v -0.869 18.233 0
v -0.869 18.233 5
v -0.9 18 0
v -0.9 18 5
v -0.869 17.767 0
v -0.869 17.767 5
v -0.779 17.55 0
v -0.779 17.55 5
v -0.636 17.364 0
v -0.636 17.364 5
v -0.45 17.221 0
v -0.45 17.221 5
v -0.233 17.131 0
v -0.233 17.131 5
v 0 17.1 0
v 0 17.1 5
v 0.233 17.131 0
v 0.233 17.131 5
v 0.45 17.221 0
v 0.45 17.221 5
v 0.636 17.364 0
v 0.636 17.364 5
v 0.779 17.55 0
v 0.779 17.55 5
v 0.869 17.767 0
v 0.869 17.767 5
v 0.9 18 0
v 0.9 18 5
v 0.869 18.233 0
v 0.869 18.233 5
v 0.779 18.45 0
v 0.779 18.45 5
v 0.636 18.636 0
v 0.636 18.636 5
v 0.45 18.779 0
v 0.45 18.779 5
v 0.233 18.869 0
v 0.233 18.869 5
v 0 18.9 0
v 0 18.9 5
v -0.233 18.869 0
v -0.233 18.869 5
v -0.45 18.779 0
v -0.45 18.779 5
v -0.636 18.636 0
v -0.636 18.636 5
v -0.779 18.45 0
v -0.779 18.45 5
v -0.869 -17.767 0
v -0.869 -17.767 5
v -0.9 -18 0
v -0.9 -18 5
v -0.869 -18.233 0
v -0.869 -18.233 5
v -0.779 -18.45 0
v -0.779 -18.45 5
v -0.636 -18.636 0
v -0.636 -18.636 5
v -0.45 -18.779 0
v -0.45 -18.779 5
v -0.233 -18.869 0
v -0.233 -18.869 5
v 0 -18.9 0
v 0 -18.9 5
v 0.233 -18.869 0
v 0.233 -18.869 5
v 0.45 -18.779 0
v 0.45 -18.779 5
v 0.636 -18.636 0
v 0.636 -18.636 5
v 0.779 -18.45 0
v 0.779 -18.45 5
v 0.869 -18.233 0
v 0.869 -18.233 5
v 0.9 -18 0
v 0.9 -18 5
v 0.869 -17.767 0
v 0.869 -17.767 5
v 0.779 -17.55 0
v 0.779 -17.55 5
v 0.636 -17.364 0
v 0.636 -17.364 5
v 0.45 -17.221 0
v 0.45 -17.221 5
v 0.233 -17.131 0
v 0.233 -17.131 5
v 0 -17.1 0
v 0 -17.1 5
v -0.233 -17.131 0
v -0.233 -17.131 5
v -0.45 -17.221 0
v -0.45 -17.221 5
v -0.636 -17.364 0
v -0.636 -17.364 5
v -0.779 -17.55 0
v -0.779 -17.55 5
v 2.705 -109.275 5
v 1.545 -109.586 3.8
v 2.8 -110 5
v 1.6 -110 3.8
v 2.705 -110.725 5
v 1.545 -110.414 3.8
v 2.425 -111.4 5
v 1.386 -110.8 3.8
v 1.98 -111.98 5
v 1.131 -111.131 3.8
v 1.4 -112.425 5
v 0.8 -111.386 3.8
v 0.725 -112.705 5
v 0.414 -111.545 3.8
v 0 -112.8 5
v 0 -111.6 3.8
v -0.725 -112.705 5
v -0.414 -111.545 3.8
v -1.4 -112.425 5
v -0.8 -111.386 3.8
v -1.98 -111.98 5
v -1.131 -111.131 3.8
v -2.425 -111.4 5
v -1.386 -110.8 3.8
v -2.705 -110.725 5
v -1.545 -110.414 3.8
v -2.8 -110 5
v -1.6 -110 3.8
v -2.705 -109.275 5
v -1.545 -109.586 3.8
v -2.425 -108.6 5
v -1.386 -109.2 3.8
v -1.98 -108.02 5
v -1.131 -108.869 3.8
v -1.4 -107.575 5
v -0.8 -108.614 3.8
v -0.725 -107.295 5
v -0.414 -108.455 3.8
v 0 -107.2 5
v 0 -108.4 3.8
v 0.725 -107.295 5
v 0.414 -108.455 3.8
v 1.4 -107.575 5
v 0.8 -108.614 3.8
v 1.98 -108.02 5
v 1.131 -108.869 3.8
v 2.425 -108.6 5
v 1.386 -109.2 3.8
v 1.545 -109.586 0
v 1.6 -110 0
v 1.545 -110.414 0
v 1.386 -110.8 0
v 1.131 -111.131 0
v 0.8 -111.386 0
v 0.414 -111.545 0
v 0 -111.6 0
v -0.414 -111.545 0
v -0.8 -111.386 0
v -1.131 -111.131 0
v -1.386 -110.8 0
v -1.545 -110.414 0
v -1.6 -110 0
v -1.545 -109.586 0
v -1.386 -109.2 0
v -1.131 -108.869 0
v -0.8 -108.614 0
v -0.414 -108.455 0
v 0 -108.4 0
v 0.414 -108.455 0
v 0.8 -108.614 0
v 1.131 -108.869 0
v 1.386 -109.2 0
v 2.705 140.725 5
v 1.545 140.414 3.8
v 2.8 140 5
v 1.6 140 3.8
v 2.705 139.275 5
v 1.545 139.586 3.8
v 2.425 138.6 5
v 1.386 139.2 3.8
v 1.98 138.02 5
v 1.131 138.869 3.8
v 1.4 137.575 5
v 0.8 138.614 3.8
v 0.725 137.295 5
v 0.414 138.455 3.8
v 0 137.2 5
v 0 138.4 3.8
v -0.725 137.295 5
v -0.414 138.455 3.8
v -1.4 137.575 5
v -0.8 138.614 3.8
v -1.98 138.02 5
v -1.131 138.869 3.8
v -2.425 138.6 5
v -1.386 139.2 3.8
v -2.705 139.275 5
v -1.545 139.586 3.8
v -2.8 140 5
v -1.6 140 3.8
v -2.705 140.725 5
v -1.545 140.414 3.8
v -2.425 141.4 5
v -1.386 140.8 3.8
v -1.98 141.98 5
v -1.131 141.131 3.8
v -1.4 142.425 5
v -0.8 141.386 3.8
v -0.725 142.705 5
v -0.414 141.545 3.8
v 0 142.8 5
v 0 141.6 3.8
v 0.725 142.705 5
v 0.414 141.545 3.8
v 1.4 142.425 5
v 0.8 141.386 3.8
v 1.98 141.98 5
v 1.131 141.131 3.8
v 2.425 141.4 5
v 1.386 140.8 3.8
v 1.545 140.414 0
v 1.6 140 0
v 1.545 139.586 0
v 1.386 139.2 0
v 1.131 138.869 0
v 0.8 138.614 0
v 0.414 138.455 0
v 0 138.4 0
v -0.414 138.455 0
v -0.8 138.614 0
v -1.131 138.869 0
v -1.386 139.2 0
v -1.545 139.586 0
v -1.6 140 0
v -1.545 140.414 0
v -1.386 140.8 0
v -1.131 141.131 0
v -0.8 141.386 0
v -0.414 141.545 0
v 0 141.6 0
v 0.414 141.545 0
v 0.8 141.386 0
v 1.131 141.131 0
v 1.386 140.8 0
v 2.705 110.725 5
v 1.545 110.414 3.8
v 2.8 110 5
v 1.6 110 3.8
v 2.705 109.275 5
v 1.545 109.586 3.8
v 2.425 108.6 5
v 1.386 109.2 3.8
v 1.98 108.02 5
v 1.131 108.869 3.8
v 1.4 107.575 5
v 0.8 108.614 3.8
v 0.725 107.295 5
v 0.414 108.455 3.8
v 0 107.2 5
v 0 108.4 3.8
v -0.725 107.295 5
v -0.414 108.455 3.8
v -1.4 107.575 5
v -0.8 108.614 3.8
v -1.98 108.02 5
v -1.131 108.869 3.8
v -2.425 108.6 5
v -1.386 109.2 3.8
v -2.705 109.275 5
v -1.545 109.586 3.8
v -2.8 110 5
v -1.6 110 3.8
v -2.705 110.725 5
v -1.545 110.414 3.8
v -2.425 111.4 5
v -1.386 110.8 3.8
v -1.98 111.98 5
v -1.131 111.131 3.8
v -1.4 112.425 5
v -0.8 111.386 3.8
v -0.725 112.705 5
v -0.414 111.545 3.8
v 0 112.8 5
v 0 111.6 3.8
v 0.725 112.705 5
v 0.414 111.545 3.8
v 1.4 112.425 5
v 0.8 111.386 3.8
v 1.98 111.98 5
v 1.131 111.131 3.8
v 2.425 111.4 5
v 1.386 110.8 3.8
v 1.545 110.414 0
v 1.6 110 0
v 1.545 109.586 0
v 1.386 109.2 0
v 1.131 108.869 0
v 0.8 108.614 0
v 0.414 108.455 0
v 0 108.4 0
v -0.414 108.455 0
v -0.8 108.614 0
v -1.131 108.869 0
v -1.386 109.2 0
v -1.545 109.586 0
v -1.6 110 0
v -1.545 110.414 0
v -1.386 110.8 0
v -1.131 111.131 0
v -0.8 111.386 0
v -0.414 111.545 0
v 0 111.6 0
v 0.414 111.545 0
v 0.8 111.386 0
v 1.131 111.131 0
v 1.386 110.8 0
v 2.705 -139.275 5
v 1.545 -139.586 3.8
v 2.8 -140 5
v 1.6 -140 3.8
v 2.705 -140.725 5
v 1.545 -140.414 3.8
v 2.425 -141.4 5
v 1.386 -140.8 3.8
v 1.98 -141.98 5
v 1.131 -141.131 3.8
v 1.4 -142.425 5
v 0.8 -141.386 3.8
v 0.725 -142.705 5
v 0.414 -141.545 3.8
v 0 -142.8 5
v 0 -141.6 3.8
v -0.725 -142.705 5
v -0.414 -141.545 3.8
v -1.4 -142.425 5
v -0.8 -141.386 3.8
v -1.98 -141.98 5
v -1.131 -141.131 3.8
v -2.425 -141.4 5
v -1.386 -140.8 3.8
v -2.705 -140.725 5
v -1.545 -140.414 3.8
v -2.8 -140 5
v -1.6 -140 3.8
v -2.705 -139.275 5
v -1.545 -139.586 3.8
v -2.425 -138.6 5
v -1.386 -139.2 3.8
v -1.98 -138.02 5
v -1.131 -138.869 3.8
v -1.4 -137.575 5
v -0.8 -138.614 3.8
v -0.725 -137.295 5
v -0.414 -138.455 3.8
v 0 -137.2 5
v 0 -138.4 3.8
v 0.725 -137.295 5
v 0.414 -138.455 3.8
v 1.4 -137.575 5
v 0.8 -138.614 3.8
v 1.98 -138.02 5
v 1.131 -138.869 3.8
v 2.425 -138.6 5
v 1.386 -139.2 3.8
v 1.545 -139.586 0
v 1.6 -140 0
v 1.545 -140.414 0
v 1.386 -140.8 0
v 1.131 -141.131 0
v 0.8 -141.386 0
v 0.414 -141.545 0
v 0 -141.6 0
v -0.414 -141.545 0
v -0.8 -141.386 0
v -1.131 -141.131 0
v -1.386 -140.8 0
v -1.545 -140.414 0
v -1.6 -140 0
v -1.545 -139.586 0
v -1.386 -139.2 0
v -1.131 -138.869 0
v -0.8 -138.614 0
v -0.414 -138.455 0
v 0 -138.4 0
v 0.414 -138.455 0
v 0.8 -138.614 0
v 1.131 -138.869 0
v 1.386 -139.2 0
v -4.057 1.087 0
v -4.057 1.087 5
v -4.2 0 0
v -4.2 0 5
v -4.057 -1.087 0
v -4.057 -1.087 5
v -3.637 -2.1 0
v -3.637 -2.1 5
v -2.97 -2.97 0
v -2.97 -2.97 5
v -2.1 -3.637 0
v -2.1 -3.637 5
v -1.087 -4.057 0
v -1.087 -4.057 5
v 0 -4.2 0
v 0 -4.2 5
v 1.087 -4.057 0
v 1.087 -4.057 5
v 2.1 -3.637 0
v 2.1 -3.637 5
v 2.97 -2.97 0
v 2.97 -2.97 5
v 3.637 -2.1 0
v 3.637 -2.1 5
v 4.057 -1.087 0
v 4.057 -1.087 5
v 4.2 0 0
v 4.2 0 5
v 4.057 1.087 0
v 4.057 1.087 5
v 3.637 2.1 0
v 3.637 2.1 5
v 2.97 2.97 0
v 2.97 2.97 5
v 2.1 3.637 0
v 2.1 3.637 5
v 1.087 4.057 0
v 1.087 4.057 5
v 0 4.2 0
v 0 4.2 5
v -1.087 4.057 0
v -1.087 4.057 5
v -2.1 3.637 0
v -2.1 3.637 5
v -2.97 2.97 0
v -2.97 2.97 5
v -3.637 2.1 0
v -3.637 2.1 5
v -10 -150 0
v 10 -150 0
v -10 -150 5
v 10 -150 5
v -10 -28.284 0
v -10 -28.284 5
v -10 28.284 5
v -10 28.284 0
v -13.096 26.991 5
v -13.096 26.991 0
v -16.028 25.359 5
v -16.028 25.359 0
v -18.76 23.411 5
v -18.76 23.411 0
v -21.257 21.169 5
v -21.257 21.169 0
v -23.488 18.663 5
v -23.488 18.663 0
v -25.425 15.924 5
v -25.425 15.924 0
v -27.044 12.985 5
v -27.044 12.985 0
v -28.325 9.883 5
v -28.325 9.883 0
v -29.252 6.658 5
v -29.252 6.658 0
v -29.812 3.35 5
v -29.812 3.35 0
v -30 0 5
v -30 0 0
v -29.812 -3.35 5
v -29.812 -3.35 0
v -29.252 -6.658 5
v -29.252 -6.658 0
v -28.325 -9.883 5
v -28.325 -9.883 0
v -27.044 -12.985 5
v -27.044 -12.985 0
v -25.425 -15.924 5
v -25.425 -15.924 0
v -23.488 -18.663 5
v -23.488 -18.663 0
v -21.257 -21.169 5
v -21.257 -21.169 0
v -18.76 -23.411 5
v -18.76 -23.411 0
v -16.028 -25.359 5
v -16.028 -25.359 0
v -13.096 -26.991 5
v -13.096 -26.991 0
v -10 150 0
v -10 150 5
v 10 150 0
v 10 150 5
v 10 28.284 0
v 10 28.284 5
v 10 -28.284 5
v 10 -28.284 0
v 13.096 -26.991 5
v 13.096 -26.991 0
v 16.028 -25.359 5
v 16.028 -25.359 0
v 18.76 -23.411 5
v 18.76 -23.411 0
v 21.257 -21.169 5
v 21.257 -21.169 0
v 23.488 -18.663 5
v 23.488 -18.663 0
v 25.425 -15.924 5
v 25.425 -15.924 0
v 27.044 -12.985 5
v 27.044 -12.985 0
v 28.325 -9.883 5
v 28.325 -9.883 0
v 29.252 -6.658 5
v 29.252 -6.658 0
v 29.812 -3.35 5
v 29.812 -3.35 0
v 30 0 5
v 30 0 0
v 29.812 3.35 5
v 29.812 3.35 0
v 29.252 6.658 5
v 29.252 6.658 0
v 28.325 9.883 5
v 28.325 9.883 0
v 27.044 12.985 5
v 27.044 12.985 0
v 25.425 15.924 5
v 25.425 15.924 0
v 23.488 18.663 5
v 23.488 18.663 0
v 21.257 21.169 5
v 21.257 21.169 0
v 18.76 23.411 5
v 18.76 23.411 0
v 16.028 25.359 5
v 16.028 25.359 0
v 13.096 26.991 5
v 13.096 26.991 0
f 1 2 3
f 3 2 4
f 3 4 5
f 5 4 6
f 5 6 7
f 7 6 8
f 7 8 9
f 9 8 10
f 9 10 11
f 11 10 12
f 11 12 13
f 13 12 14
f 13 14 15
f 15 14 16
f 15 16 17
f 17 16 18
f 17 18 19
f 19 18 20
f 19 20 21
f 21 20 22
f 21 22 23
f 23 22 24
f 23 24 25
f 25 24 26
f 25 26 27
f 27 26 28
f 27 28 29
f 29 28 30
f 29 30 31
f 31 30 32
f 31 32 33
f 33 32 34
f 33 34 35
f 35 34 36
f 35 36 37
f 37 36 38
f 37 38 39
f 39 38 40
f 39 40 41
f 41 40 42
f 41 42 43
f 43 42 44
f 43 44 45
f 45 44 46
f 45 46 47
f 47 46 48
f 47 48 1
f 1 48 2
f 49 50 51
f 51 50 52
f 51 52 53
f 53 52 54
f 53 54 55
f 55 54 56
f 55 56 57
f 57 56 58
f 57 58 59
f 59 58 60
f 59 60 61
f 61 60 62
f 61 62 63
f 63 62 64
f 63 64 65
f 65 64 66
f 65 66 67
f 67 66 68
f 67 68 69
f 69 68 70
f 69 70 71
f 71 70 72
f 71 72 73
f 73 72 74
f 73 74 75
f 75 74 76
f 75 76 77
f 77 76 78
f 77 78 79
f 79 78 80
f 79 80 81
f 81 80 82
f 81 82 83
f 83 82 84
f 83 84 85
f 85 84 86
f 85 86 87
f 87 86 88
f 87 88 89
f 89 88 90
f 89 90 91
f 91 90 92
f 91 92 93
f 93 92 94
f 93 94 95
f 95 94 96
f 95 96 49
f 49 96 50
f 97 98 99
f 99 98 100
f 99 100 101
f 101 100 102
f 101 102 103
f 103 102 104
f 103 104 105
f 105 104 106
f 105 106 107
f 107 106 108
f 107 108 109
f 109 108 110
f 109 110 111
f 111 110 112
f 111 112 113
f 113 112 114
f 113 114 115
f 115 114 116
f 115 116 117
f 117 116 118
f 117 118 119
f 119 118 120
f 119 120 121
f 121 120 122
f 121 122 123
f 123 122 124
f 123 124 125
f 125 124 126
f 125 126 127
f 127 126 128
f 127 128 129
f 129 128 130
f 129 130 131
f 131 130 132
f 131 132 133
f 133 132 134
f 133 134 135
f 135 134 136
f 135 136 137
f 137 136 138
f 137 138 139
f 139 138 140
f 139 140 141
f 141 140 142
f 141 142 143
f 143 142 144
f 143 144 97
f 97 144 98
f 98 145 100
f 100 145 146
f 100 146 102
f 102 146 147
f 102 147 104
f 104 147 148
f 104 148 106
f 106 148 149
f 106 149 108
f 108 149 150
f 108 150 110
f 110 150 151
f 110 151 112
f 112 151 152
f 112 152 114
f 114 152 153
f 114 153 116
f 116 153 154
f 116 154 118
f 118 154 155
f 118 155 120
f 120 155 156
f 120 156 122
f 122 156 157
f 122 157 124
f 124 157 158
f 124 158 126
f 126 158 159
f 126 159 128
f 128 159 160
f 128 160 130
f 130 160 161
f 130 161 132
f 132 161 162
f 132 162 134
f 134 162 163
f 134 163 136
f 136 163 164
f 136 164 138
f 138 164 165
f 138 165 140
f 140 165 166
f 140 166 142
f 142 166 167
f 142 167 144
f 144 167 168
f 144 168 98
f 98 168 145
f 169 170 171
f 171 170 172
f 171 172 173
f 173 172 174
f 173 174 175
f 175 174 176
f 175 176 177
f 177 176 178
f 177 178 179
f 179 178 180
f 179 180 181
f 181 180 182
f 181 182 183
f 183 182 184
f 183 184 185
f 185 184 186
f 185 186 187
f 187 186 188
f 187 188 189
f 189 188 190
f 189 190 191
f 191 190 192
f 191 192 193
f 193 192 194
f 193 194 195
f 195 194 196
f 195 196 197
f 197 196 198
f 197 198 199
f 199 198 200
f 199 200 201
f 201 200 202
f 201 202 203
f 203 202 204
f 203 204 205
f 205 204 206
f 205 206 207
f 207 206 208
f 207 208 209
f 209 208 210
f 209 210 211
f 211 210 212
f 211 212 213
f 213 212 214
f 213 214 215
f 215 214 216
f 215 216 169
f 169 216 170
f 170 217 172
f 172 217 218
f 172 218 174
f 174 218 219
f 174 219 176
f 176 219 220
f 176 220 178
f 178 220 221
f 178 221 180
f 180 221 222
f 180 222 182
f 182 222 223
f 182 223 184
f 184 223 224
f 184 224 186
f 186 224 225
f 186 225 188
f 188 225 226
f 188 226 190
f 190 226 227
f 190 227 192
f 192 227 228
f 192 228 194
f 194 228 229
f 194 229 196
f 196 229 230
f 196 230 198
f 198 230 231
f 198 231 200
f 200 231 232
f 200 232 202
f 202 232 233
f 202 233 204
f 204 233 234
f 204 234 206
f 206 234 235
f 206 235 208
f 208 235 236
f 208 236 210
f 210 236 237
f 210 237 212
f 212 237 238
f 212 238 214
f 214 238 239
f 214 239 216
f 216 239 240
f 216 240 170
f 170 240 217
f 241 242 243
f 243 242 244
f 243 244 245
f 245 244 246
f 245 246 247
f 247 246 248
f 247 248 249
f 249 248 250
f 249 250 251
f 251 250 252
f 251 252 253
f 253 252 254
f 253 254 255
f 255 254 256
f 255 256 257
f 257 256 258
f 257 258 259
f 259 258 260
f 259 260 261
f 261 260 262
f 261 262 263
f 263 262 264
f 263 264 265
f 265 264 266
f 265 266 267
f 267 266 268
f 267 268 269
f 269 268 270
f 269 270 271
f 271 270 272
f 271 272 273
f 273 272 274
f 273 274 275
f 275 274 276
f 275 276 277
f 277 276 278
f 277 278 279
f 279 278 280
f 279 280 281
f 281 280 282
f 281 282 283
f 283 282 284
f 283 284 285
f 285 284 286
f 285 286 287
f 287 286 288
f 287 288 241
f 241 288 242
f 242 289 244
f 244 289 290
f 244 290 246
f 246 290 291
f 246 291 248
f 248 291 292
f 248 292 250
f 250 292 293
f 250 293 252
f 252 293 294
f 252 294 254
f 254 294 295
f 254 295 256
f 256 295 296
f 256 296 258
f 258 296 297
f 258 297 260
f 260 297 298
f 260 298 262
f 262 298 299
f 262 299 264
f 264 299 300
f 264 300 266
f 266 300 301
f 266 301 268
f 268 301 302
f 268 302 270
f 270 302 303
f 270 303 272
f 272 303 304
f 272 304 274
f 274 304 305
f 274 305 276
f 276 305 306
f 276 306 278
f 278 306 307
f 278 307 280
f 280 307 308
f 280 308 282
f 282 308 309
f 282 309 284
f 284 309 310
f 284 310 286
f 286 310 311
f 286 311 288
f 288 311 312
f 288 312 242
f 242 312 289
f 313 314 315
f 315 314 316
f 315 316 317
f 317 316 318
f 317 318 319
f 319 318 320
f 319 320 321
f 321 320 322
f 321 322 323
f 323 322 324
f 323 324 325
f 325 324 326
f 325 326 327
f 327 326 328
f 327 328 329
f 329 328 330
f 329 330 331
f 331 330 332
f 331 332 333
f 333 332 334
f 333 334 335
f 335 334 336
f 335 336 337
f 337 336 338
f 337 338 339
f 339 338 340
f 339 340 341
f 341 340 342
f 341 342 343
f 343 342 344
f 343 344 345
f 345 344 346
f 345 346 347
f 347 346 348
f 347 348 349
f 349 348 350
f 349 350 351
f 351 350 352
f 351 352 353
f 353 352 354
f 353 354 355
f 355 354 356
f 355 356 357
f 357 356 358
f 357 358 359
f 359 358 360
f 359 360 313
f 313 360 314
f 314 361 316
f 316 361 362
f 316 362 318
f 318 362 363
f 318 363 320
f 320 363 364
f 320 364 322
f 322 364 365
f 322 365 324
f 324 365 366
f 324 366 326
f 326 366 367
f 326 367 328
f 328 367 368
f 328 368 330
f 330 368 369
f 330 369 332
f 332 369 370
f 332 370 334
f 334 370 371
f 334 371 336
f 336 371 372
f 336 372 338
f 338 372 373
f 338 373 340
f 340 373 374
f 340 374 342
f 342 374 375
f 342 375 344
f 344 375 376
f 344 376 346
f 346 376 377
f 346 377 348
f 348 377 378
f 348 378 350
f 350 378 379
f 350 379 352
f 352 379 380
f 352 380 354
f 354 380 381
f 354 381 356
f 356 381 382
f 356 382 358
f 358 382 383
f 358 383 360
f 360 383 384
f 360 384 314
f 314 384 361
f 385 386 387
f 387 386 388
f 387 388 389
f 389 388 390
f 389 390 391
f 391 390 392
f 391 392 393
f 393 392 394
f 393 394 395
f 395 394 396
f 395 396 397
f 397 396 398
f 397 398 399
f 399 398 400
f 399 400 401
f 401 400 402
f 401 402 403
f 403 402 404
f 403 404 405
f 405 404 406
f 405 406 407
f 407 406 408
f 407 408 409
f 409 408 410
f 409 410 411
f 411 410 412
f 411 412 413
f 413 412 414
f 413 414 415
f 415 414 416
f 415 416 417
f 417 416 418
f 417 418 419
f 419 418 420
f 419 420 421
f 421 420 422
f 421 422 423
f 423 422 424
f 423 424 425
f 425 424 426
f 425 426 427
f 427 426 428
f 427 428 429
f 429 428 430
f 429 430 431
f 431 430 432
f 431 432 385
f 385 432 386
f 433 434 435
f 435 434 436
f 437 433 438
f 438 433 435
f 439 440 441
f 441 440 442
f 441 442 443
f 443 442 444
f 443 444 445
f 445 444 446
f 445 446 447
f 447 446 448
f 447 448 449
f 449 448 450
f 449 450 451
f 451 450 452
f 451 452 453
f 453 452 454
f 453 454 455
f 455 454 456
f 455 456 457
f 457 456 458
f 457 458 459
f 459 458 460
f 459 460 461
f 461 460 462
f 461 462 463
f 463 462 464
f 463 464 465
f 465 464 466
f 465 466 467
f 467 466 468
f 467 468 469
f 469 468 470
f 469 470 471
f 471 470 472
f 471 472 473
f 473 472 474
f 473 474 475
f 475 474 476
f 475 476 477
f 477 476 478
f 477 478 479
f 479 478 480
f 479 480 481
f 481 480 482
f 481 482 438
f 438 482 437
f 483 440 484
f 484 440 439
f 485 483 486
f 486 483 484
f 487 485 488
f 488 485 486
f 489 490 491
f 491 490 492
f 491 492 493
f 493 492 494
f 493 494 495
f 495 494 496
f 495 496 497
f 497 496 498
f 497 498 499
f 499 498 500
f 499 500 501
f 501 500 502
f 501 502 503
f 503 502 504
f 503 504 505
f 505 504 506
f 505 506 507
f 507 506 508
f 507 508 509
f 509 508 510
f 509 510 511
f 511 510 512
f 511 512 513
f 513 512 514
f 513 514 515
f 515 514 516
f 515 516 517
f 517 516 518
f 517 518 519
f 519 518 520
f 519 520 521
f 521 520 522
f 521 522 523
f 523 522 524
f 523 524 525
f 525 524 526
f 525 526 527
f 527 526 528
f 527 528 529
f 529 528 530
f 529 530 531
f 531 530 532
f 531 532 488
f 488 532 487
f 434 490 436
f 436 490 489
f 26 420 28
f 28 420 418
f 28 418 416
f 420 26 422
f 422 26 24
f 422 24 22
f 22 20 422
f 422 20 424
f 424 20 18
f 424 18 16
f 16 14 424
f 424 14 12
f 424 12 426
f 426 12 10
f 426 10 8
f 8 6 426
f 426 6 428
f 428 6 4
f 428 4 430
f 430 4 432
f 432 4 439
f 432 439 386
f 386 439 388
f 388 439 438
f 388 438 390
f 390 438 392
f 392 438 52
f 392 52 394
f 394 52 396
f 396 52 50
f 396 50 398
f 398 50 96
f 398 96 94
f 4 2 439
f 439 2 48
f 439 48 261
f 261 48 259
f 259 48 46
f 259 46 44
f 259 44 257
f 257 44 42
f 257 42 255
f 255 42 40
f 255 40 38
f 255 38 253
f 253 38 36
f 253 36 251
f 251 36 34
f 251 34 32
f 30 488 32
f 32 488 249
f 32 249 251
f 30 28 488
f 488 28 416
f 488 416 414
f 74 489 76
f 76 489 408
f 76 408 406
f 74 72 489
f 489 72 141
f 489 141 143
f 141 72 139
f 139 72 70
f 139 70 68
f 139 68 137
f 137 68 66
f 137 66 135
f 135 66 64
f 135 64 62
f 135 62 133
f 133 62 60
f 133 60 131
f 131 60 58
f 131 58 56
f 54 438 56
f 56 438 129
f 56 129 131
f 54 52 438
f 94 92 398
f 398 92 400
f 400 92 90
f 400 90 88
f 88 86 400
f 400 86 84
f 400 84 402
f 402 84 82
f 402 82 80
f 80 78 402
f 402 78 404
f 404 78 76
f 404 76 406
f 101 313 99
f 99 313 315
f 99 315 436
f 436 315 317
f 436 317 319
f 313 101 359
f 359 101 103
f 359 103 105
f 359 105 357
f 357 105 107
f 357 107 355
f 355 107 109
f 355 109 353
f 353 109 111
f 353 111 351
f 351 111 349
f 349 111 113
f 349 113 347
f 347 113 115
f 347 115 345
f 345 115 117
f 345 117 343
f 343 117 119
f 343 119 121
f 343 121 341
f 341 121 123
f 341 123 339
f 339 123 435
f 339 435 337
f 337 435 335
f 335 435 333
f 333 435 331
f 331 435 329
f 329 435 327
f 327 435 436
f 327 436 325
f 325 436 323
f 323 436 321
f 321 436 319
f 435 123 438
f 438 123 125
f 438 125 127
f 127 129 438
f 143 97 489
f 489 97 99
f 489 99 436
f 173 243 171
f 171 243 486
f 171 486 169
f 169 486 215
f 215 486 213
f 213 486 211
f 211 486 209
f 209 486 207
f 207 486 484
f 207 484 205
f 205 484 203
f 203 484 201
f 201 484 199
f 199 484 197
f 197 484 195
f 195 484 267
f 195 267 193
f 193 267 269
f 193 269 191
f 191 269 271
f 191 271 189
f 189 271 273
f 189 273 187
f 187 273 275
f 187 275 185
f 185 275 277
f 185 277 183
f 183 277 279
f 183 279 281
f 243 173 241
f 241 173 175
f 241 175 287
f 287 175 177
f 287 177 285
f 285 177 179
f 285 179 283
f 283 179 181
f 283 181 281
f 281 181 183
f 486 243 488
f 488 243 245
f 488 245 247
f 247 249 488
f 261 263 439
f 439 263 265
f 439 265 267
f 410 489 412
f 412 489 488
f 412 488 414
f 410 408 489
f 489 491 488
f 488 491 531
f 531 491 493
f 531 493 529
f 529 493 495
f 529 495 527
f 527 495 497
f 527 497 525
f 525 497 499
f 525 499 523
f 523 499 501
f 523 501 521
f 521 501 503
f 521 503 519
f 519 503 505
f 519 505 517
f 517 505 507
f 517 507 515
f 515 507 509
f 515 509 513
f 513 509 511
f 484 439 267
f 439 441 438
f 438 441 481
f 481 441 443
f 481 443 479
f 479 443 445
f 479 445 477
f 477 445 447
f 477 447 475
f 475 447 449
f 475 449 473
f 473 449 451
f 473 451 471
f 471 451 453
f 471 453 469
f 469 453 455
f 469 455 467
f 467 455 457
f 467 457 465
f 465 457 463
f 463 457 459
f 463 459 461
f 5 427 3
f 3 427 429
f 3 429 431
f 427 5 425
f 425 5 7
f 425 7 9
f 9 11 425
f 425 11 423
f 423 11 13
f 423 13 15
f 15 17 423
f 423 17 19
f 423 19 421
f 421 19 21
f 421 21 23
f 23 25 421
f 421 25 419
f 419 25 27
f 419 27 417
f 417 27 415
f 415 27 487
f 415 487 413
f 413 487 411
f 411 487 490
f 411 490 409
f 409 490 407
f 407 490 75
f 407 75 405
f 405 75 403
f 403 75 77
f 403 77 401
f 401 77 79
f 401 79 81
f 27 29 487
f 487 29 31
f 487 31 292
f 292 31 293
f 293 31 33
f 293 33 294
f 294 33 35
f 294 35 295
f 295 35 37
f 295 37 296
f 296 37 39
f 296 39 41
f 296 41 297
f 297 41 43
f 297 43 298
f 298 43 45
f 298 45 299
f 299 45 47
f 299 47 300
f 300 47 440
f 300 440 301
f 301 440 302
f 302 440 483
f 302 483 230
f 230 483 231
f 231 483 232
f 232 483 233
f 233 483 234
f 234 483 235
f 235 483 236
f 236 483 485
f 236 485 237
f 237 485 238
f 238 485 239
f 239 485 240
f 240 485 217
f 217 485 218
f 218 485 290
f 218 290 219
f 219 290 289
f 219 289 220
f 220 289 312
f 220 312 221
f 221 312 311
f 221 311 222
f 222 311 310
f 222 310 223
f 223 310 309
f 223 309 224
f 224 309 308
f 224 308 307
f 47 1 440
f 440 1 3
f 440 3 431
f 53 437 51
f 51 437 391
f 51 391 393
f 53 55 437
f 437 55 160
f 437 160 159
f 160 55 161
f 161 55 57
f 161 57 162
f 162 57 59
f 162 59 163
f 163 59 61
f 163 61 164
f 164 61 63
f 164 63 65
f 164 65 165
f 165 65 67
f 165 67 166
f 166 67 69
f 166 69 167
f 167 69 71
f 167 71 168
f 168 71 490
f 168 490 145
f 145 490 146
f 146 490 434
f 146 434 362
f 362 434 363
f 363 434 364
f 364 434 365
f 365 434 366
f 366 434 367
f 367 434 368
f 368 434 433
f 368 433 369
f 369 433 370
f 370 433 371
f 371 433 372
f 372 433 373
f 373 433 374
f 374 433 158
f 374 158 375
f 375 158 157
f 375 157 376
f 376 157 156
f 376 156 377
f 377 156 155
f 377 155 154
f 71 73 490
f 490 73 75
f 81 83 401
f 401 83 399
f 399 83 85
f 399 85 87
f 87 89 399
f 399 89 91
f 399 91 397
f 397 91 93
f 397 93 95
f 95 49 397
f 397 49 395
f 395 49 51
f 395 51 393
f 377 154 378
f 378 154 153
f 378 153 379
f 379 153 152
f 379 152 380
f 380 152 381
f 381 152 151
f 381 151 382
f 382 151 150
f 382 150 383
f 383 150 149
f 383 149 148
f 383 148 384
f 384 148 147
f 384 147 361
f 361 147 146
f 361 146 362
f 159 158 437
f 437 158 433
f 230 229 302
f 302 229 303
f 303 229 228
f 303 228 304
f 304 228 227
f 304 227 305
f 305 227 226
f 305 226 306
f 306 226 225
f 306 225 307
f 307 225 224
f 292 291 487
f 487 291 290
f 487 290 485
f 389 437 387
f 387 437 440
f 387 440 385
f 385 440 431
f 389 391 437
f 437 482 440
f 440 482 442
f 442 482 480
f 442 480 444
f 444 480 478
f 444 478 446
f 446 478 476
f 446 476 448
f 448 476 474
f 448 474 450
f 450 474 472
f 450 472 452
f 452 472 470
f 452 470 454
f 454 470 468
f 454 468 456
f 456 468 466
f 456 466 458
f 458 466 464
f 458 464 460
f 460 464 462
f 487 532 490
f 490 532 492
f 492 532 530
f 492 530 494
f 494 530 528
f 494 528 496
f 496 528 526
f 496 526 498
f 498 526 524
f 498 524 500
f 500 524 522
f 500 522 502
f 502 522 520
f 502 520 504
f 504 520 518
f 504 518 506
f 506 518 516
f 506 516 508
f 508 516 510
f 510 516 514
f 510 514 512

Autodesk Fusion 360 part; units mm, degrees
sketch "Sketch1" plane through (0, 0, 0) normal (0, 0, 1) x (1, 0, 0)
  circle A0 centre (0, 0) radius 30
  line L0 (10, 150) -> (-10, 150)
  line L1 (-10, 150) -> (-10, -150)
  line L2 (-10, -150) -> (10, -150)
  line L3 (10, -150) -> (10, 150)
  line L4 (10, 150) -> (-10, -150) construction
  line L5 (-10, 150) -> (10, -150) construction
  dimension "d1" = 60
  dimension "d3" = 20
  dimension "d4" = 300
extrude "Extrude1" add sketch "Sketch1" along normal blind 5
sketch "Sketch2" plane through (0, 0, 5) normal (0, 0, 1) x (-1, 0, 0)
  line L0 (-10, 150) -> (-10, 28.2843)
  arc A0 (-10, 28.2843) -> (-10, -28.2843) centre (0, 0) ccw
  line L1 (-10, -28.2843) -> (-10, -150)
  line L2 (-10, -150) -> (10, -150)
  line L3 (10, -150) -> (10, -28.2843)
  arc A1 (10, -28.2843) -> (10, 28.2843) centre (0, 0) ccw
  line L4 (10, 28.2843) -> (10, 150)
  line L5 (10, 150) -> (-10, 150)
  line L6 (30, 0) -> (-30, 0) construction
  line L7 (0, -18) -> (0, 18) construction
  point P0 (0, -140)
  point P1 (0, -110)
  point P2 (0, 140)
  point P3 (0, 110)
  point P4 (0, -18)
  point P5 (0, 18)
  dimension "d8" = 30
  dimension "d9" = 10
  dimension "d16" = 36
hole "Hole1" at (0, 0, 5) direction (0, 0, -1) diameter 8.4 end up to surface (5 mm away)
hole "Hole2" at (0, 140, 5) at (0, 110, 5) at (0, -110, 5) at (0, -140, 5) direction (0, 0, -1) diameter 3.2 end up to surface (5 mm away) countersink diameter 5.6 countersink angle 90
hole "Hole3" at (0, 18, 5) at (0, -18, 5) direction (0, 0, -1) diameter 1.8 end up to surface (5 mm away)
